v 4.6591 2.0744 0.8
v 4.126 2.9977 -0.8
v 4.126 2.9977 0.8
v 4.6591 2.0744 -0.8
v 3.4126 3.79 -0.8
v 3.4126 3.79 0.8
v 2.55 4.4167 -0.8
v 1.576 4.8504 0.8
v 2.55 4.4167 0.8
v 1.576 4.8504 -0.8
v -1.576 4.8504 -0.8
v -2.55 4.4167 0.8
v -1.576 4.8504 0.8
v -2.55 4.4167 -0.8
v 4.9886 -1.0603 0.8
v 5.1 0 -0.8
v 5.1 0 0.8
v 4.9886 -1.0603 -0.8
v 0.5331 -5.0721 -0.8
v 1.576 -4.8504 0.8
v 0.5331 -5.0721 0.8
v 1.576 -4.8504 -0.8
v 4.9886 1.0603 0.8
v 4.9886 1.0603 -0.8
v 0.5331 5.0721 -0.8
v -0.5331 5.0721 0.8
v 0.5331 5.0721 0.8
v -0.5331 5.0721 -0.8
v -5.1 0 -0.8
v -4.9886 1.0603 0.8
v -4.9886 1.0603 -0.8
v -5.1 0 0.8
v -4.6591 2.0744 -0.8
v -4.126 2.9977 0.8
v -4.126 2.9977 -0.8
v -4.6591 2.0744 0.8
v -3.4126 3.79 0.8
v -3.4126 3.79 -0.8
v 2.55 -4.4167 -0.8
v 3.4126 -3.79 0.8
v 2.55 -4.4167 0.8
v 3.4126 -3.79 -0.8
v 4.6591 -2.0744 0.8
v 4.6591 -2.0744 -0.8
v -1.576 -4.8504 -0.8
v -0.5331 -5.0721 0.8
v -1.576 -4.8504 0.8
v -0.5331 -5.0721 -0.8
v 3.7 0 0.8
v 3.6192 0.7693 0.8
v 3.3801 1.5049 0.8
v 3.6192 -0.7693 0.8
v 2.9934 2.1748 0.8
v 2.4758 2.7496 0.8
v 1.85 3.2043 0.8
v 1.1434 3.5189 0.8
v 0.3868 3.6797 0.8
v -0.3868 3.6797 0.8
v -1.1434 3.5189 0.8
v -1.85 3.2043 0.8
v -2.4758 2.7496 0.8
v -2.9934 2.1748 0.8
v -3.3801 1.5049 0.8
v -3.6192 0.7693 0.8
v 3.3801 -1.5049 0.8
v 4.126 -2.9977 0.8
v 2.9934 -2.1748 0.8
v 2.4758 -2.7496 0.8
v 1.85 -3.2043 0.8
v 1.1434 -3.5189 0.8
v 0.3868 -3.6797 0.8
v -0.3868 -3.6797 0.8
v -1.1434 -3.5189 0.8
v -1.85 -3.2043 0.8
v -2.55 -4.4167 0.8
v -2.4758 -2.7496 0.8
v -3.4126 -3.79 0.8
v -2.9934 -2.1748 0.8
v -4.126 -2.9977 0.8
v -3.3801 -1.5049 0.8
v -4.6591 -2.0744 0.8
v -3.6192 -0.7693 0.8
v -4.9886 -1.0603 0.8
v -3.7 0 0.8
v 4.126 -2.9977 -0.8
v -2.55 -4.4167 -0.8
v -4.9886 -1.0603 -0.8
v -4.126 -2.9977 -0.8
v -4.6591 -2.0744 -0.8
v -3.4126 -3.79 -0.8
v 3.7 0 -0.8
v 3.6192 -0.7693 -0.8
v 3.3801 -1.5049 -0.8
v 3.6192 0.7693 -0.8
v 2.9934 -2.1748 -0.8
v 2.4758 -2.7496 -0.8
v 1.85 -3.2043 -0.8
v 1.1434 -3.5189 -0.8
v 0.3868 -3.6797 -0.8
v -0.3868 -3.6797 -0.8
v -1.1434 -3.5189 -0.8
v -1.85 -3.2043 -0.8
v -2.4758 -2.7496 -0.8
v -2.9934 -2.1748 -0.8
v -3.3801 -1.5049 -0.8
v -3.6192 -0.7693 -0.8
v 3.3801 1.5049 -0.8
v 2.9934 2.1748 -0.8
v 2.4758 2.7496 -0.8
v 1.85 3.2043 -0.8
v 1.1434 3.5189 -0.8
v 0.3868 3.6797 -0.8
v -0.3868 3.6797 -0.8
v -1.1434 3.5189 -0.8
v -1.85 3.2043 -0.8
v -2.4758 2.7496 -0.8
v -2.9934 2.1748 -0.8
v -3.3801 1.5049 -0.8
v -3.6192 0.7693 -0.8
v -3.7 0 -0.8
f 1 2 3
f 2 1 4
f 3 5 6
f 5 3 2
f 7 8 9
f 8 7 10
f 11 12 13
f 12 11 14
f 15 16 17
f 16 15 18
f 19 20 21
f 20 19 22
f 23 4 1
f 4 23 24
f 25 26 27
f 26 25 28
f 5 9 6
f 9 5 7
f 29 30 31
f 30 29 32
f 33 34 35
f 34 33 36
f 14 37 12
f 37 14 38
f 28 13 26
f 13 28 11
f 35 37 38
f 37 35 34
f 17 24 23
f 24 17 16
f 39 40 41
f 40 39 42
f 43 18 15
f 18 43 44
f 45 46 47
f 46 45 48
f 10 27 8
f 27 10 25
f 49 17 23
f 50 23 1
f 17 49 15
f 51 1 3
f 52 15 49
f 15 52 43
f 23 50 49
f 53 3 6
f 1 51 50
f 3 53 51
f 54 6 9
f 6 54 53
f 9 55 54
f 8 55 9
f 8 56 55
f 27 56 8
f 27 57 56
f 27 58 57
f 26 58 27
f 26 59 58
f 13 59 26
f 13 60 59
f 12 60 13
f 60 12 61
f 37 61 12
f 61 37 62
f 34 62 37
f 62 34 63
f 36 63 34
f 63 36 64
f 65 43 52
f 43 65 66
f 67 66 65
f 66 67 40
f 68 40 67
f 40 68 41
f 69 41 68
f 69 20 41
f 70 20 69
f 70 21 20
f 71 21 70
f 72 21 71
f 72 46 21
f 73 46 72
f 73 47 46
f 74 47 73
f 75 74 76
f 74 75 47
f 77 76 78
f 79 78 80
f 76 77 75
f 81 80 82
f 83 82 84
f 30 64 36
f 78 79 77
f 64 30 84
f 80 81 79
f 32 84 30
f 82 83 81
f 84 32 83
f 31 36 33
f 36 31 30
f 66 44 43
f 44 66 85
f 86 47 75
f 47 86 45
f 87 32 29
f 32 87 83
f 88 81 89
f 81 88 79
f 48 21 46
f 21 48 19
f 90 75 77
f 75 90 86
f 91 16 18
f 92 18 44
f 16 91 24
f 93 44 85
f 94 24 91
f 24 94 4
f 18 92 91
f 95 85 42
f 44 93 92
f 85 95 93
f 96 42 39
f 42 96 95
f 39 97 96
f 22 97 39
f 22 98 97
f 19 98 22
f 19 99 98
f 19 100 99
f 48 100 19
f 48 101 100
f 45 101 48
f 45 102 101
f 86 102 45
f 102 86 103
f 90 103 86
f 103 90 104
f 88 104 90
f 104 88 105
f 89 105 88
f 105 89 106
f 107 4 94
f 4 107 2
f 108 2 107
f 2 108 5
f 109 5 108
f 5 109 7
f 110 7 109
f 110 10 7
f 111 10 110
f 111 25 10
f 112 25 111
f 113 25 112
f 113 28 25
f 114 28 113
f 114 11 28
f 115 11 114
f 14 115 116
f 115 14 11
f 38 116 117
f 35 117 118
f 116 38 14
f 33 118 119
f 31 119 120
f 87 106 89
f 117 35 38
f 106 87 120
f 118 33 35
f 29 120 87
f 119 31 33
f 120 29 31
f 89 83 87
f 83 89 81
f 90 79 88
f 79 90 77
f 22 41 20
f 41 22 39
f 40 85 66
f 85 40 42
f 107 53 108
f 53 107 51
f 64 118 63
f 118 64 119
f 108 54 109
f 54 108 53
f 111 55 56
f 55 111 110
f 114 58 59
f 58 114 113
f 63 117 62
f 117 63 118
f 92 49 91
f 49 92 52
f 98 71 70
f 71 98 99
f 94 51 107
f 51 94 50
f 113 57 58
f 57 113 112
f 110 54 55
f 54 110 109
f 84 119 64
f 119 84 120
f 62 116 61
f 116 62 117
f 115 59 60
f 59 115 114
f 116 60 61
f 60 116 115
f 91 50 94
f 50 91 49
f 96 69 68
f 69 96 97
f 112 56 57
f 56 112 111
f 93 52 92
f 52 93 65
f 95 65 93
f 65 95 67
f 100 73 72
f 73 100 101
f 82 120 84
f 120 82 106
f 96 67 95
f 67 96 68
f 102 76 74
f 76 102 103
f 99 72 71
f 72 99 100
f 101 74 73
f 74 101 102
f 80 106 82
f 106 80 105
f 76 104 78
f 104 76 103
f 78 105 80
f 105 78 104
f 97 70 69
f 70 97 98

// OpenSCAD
$fn = 30;
// hub - 50 x 79
difference() { 

    cylinder(r=7.4/2+1.4,h=1.6,center=true);
    cylinder(r=7.4/2,h=2.2,center=true);
}
